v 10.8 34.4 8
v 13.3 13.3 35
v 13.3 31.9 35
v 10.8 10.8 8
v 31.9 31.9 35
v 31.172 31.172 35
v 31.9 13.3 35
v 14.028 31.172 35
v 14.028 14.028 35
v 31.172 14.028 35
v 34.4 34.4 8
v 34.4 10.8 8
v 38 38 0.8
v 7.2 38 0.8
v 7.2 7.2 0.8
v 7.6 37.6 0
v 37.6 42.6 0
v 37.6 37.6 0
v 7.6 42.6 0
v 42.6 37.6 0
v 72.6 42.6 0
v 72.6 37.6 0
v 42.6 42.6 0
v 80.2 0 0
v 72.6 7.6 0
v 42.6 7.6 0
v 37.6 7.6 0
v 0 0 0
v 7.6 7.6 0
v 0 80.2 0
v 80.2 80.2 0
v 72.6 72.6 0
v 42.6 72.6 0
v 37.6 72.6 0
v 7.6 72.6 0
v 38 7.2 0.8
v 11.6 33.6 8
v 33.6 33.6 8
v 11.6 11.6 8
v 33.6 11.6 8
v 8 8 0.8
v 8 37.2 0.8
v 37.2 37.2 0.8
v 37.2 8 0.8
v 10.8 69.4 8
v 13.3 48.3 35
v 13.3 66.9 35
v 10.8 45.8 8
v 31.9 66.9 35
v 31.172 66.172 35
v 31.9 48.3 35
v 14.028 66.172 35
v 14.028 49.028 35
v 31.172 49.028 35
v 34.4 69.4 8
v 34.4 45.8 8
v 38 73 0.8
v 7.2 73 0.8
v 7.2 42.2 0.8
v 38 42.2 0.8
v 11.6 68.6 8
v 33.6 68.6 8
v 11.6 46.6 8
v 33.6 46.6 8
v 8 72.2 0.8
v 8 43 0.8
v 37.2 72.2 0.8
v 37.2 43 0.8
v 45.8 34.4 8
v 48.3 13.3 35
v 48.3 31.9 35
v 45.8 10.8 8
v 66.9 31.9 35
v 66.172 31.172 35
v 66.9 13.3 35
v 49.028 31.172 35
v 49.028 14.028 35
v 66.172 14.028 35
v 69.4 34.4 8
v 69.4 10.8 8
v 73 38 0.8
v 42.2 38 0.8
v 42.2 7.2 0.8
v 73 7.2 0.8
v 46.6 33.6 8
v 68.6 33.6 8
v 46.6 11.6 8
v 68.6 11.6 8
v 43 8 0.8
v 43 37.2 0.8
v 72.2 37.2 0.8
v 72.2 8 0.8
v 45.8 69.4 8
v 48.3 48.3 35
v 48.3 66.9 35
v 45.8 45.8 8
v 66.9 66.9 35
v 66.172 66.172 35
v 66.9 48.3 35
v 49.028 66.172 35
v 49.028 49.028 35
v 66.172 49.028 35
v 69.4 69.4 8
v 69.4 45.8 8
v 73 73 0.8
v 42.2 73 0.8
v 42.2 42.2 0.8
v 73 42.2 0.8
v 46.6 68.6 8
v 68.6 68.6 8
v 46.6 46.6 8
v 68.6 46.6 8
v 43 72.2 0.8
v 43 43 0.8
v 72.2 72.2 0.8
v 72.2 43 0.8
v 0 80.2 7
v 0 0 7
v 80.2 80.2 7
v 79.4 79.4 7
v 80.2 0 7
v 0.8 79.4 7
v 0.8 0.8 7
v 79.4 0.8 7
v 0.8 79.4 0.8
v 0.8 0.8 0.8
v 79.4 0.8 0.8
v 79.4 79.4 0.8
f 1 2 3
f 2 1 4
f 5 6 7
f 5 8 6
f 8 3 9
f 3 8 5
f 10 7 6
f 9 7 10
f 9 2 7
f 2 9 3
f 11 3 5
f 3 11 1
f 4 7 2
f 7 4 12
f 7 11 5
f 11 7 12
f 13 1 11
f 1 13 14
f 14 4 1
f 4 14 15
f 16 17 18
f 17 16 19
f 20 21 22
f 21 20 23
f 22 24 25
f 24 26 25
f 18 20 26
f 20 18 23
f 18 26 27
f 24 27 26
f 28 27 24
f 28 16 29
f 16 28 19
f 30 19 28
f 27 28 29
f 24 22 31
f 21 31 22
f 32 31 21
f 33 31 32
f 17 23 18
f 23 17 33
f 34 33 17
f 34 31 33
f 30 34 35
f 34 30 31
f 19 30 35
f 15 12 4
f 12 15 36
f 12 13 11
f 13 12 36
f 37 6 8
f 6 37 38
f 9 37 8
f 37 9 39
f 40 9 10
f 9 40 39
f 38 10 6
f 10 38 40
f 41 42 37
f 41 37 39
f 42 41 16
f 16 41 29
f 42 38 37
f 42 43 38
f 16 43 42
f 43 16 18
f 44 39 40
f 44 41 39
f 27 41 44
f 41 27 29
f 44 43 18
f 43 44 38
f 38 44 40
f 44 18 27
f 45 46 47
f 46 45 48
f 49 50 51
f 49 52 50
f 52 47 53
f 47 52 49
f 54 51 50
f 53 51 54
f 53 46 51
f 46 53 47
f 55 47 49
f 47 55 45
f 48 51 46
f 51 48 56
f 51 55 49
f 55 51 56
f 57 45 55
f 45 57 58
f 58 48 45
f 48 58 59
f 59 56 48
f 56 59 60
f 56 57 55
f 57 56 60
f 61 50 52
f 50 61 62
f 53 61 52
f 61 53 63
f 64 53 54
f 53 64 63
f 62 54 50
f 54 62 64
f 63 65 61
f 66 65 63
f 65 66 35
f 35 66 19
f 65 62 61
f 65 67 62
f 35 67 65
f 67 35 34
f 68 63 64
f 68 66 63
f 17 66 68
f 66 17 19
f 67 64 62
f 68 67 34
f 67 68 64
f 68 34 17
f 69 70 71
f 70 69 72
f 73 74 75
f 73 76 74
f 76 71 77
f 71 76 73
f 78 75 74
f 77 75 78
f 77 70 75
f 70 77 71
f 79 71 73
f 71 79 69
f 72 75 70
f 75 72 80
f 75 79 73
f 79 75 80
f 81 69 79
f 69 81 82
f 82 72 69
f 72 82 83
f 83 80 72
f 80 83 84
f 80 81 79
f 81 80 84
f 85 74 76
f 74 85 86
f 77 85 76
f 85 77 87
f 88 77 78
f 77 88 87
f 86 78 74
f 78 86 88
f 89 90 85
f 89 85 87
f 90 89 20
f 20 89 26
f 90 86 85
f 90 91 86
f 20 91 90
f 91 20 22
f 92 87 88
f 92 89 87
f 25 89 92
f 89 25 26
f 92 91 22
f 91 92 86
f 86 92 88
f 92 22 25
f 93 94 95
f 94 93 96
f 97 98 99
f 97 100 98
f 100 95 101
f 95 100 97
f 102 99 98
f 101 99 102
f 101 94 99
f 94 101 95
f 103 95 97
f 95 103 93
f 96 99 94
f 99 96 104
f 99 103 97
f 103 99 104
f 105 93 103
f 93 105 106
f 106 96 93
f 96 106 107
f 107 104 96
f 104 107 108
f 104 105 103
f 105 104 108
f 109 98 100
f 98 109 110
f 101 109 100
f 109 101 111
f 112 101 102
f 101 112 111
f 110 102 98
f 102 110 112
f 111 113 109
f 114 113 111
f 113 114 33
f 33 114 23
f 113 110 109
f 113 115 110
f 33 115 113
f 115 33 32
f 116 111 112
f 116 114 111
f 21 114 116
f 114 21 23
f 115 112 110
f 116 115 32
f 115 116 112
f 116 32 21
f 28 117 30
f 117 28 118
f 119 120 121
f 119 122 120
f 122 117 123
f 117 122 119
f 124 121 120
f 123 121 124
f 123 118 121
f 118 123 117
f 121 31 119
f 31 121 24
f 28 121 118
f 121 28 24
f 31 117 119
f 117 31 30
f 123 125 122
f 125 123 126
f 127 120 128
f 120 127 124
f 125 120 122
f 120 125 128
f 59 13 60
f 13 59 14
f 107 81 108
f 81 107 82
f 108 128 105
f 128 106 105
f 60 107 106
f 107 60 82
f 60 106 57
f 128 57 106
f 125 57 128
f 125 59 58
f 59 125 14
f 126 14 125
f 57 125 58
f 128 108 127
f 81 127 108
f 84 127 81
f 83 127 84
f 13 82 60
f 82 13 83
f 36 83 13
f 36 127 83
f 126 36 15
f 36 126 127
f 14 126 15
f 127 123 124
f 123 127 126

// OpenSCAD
w=0.4*2;

height=35;
width=35;

magnetic_cube_width=5.2;

x=2;


translate([magnetic_cube_width+2*w,magnetic_cube_width+2*w,0])
for (i = [0:x-1])
for (j = [0:x-1])
{
    translate([width*i, width*j,0])
    cube_holder();
}


bottom_width=2*magnetic_cube_width+6*w+width*x-5;
difference()
{
    cube([bottom_width,bottom_width,7]);
    translate([w,w,w])
    cube([bottom_width-2*w,bottom_width-2*w,7]);
    
    translate([magnetic_cube_width+2*w,magnetic_cube_width+2*w,0])
    for (i = [0:x-1])
    for (j = [0:x-1])
    {
        translate([width*i, width*j,0])
        translate([w,w,0])
        #cube_shape(27+w);
    }
}


//magnet_cube();
//translate([magnetic_cube_width+4*w+width*x-5,magnetic_cube_width+4*w+width*x-5,0])
//magnet_cube();

module cube_holder()
{
    difference()
    {
        cube_shape(27, w);
        translate([w,w,0])
        cube_shape(27+w);
    }
}

module cube_shape(h, w=0)
{
    upper_width=17+2*w;
    middle_width=22+2*w;
    bottom_width=30+2*w;

    translate([0,0,8])
    translate([bottom_width/2,bottom_width/2,0])
    rotate([0,0,45])
    cylinder(d1=to_diameter(middle_width), d2=to_diameter(upper_width), h=h, $fn=4);

    translate([bottom_width/2,bottom_width/2,0])
    rotate([0,0,45])   
    cylinder(d1=to_diameter(bottom_width),d2=to_diameter(middle_width), h=8, $fn=4);
}

function to_diameter(width) = width /  sqrt(2) * 2;

module magnet_cube()
{
    difference()
    {
        magnet_cube_shape(magnetic_cube_width, w);
        translate([w,w,2*w])
        magnet_cube_shape(magnetic_cube_width);
        translate([magnetic_cube_width/2,0,2*w])
        cube([2*w,magnetic_cube_width+2*w,7]);
        translate([0,magnetic_cube_width/2,2*w])
        cube([magnetic_cube_width+2*w,2*w,7]);
    }
}

module magnet_cube_shape(width, w=0)
{
    width=width+2*w;
    
    cube([width,width,7]);
}
